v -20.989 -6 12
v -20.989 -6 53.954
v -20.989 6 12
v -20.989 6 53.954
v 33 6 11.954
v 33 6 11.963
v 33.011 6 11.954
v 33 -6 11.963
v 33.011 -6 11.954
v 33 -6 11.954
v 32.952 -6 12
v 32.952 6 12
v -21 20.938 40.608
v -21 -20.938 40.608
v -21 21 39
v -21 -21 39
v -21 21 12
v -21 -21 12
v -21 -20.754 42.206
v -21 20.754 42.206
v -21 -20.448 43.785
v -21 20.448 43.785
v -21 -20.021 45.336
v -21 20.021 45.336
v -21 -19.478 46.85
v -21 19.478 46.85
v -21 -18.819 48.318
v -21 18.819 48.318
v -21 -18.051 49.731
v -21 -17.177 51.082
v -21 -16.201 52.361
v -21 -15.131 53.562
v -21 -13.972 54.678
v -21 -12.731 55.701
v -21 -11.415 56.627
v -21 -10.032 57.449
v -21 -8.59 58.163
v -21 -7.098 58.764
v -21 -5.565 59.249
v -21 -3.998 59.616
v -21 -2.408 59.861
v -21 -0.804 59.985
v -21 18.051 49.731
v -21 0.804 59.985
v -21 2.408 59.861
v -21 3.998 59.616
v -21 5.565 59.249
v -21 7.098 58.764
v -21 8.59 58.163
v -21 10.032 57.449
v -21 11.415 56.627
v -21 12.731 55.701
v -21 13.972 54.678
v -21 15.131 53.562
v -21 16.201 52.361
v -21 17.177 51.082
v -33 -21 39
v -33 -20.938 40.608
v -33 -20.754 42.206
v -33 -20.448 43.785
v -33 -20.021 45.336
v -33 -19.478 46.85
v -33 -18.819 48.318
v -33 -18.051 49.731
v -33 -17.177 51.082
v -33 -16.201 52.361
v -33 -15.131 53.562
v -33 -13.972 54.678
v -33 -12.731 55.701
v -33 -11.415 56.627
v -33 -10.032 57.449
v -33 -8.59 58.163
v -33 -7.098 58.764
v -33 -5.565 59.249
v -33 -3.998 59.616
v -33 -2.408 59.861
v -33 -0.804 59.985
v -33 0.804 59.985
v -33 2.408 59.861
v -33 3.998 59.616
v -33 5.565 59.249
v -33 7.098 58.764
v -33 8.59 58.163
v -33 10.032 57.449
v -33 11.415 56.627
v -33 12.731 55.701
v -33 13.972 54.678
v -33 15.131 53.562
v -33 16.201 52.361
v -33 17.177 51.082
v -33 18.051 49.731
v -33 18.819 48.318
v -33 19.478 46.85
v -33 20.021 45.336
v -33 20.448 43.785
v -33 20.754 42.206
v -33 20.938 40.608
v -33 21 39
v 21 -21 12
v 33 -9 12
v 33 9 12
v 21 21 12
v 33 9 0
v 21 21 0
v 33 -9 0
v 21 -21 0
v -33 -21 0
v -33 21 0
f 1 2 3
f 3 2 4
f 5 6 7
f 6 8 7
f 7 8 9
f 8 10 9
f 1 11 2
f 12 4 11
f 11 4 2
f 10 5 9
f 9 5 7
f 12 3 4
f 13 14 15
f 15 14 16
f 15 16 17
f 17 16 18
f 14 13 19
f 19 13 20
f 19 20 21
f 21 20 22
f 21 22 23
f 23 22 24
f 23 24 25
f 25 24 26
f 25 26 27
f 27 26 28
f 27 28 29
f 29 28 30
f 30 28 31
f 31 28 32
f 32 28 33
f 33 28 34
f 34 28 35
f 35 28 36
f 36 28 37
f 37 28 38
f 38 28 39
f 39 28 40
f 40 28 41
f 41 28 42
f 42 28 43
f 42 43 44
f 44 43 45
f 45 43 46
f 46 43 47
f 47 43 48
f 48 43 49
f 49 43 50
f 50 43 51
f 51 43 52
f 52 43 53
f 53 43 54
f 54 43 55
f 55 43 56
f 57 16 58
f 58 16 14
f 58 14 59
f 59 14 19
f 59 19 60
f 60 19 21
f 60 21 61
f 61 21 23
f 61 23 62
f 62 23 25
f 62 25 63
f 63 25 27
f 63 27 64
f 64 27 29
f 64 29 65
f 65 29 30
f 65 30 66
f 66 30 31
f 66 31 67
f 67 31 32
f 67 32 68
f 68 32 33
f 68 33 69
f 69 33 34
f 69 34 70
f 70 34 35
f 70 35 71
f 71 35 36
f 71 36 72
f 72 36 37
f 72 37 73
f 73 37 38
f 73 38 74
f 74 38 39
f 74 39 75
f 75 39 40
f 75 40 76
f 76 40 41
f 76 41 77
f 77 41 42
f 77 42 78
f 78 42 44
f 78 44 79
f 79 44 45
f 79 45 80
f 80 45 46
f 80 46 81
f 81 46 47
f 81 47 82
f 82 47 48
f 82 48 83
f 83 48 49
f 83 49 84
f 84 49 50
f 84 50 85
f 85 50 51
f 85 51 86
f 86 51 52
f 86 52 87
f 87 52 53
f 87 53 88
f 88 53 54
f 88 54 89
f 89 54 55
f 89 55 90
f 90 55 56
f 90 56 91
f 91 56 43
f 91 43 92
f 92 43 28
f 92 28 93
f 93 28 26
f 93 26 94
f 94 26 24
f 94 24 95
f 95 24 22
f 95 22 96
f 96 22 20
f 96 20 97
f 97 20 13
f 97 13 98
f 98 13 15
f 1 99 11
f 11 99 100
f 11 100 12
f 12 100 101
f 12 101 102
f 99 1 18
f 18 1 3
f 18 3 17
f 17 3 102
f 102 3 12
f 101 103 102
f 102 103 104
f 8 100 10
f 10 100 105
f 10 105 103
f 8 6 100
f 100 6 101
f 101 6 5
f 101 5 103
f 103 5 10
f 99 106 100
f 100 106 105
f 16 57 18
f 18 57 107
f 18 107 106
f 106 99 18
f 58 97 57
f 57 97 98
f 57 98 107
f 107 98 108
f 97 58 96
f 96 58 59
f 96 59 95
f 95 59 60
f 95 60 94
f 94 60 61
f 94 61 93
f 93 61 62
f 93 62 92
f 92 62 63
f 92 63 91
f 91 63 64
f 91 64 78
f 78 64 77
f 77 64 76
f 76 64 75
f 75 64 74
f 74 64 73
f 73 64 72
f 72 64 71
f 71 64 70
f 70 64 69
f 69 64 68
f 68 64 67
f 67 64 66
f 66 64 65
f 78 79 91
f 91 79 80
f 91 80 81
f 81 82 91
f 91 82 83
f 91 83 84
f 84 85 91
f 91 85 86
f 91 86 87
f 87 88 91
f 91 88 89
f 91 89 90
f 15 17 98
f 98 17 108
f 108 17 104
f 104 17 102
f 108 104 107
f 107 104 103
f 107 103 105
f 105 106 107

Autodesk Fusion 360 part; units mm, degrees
sketch "Baza" plane through (0, 0, 0) normal (0, 0, 1) x (1, 0, 0)
  line L0 (33, 21) -> (-33, 21)
  line L1 (-33, 21) -> (-33, -21)
  line L2 (-33, -21) -> (33, -21)
  line L3 (33, -21) -> (33, 21)
  line L4 (33, 21) -> (-33, -21) construction
  line L5 (-33, 21) -> (33, -21) construction
  dimension "d1" = 42
  dimension "d2" = 66
extrude "Extrude1" add sketch "Baza" along normal blind 12
chamfer "Chamfer1" distance 12 angle 45 2 edges at (33, -21, 6) (33, 21, 6)
sketch "Baza 2" plane through (0, 0, 12) normal (0, 0, 1) x (-1, 0, 0)
  line L0 (-33, -9) -> (-21, -21)
  line L1 (-21, -21) -> (33, -21)
  line L2 (33, -21) -> (33, 21)
  line L3 (33, 21) -> (-21, 21)
  line L4 (-21, 21) -> (-33, 9)
  line L5 (-33, 9) -> (-33, -9)
  line L6 (33, -21) -> (21, -21)
  line L7 (21, -21) -> (21, 21)
  line L8 (21, 21) -> (33, 21)
  line L9 (33, 21) -> (33, -21)
  dimension "d9" = 12
extrude "Extrude3" add sketch "Baza 2" along normal blind 48 contours L1 L2 L3 L6 L7 L8 L9
fillet "Fillet1" radius 21 2 edges at (-27, -21, 60) (-27, 21, 60)
sketch "Triunghi" plane through (0, 0, 0) normal (0, 1, 0) x (1, 0, 0)
  line L0 (-20.989, -53.9545) -> (-20.989, -11.9545)
  line L1 (-20.989, -11.9545) -> (33.011, -11.9545)
  line L2 (33.011, -11.9545) -> (-20.989, -53.9545)
  dimension "d14" = 42
  dimension "d15" = 54
extrude "Extrude4" add sketch "Triunghi" along normal mid plane 12
equation "d10 = 60 mm - 12 mm"
equation "d15 = 66 mm - 12 mm"
